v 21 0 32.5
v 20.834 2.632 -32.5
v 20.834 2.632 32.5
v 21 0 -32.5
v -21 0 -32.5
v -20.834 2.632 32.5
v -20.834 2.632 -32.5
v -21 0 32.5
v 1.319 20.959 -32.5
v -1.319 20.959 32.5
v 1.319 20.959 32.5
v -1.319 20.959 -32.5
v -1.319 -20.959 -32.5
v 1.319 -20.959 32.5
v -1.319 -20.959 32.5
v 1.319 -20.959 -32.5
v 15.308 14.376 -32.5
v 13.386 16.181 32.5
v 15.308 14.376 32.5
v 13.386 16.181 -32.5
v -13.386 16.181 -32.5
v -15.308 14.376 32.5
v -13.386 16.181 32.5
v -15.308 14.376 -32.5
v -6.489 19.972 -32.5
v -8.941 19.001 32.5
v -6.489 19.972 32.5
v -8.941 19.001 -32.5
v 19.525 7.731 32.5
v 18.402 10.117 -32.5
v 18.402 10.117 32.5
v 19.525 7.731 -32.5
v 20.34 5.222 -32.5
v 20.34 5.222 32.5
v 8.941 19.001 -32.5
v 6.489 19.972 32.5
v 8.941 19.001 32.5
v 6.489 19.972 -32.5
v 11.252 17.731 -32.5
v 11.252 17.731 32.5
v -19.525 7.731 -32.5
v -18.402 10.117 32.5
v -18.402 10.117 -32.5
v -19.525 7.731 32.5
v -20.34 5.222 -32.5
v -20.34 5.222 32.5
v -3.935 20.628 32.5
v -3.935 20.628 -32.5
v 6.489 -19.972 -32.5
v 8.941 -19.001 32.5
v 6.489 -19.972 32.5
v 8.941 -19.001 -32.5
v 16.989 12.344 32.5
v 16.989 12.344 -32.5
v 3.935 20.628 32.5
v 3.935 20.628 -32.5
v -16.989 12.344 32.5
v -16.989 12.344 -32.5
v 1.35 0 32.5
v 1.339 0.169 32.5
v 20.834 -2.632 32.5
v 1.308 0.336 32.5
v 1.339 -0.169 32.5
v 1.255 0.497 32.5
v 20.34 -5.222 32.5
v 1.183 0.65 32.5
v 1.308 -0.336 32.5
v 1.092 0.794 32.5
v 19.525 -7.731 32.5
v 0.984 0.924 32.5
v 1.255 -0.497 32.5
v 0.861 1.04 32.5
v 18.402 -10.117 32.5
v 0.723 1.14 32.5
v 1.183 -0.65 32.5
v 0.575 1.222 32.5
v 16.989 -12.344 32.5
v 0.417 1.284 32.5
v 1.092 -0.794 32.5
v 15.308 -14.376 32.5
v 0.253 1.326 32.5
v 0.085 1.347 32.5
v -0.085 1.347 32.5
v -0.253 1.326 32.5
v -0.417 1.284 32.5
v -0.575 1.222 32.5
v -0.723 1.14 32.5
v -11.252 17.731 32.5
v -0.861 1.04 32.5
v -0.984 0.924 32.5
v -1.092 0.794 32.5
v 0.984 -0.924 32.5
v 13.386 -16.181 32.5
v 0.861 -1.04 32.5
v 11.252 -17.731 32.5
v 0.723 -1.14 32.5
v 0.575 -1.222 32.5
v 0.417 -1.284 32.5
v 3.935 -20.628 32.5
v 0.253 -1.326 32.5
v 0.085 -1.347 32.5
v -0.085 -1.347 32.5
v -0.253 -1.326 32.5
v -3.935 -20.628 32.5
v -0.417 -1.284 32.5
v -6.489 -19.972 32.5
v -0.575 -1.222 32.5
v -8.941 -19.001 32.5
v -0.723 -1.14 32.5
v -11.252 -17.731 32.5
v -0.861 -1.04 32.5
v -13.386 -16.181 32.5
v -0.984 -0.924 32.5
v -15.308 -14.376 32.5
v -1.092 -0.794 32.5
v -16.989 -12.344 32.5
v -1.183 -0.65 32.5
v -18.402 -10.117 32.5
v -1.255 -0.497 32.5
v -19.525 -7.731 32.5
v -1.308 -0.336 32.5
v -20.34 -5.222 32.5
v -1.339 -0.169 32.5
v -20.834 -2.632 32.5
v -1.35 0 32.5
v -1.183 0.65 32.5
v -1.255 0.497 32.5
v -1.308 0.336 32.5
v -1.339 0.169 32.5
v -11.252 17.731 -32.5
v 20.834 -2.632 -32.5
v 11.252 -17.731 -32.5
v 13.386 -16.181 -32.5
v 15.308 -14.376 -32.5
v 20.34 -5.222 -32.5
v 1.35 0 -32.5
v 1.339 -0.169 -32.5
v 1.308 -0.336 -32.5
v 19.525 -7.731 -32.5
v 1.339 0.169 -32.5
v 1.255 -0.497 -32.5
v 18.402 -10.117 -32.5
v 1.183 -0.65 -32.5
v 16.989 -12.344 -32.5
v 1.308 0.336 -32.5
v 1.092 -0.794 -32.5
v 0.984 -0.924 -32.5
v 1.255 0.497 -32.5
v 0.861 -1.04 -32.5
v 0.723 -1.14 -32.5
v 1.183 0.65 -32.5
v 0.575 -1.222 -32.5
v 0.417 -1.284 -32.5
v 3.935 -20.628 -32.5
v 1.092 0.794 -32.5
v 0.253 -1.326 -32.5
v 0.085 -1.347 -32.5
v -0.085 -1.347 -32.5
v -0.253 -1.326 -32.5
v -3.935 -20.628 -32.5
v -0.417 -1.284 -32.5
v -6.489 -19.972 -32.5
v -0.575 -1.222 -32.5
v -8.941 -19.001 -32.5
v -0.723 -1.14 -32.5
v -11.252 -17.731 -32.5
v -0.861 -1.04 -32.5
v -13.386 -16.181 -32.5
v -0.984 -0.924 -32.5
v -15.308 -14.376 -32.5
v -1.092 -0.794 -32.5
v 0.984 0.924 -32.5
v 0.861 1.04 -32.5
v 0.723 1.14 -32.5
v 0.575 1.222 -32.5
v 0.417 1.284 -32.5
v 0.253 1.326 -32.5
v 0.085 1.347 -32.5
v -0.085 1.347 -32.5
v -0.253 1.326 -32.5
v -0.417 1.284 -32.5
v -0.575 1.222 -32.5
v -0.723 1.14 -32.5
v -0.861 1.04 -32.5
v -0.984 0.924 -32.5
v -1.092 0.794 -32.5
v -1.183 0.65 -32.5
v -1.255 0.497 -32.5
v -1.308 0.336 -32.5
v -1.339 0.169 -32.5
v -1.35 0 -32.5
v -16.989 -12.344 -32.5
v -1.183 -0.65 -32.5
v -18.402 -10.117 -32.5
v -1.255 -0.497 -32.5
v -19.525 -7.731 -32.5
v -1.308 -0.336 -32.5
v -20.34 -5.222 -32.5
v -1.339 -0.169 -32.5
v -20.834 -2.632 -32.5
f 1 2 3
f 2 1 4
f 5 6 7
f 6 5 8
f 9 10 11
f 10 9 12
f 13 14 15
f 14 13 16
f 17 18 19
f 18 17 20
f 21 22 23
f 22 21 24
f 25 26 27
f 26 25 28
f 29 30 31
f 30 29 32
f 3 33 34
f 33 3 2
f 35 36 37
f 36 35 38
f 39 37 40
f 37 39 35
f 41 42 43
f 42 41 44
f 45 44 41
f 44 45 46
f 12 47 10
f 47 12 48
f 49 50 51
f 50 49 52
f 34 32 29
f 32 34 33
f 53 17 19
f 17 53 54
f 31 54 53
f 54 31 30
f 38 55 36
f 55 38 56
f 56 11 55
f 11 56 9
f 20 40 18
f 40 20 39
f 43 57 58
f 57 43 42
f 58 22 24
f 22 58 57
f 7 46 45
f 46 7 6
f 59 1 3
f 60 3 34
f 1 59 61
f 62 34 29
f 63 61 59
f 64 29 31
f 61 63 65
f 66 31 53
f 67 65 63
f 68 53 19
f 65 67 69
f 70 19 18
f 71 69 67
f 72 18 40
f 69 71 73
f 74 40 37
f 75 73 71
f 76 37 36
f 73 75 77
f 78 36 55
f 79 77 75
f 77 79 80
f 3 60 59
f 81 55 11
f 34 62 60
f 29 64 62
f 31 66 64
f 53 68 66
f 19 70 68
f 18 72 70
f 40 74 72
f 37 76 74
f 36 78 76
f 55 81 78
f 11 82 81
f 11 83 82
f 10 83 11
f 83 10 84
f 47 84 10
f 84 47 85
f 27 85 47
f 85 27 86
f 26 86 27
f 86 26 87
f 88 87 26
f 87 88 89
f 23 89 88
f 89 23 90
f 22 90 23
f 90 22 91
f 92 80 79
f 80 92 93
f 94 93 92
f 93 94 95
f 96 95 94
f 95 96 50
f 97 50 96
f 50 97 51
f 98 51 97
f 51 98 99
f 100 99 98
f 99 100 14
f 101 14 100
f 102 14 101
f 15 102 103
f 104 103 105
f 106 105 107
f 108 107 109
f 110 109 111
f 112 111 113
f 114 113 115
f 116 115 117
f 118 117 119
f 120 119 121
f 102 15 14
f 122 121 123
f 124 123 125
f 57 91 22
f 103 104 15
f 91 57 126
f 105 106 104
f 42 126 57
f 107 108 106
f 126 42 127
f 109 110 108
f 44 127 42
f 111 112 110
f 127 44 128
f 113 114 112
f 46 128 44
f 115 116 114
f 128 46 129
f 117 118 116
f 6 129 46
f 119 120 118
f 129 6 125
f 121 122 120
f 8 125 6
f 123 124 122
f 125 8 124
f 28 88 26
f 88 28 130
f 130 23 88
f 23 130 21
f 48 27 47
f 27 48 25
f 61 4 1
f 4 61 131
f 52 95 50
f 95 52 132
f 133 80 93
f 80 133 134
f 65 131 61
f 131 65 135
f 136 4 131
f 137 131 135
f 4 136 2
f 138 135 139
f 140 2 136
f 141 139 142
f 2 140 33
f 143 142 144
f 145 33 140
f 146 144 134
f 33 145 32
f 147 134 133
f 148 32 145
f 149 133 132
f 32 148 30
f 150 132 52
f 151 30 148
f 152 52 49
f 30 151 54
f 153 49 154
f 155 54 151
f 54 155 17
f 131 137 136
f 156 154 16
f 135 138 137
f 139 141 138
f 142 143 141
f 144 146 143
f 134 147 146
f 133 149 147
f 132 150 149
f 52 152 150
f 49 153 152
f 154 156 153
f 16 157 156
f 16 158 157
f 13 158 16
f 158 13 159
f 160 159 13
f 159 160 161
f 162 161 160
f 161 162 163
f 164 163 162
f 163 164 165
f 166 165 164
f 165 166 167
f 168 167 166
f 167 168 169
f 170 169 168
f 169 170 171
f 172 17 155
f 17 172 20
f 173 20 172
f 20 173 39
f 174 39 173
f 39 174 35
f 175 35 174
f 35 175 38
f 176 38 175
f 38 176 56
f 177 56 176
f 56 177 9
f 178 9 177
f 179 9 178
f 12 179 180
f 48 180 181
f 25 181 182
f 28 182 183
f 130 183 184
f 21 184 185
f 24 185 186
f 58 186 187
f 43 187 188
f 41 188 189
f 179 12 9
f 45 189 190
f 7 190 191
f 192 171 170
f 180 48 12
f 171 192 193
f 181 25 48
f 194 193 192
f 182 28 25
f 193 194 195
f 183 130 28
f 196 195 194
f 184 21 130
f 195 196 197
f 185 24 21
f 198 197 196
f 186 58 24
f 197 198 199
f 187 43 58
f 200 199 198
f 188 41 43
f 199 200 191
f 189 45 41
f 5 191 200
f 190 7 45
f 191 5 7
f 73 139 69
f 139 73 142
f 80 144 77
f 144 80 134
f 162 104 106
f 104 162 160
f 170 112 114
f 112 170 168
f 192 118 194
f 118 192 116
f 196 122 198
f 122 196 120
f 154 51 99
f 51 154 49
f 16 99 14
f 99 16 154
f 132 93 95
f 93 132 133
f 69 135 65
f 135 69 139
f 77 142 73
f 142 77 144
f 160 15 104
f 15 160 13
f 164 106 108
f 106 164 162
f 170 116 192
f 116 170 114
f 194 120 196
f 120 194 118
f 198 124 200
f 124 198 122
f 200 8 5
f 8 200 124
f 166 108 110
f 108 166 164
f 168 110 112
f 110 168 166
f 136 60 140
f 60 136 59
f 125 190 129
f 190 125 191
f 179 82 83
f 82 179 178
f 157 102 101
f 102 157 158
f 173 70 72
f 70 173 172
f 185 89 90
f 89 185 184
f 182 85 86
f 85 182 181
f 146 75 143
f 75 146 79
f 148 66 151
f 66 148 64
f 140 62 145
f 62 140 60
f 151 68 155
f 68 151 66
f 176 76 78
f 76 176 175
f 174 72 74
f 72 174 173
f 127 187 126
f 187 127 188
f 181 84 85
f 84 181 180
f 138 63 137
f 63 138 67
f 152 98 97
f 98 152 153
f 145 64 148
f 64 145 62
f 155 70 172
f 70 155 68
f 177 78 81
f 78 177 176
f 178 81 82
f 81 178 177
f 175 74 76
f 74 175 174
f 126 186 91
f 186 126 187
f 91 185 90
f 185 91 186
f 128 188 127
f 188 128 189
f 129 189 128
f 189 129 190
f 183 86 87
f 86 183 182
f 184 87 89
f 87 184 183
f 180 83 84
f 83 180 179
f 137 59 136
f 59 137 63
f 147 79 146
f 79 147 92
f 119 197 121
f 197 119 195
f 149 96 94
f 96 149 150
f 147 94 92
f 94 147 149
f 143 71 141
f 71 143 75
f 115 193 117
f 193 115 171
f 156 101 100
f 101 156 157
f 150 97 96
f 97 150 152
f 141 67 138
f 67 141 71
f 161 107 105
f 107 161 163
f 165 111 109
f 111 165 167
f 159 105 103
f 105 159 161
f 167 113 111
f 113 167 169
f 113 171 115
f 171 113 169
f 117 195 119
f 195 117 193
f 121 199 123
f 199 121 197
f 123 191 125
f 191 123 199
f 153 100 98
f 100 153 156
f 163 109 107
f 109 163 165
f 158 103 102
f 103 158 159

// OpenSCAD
$fn = 50;


difference() {
	union() {
		translate(v = [0, 0, -32.5000000000]) {
			cylinder(h = 65, r = 21.0000000000);
		}
	}
	union() {
		translate(v = [0, 0, -100.0000000000]) {
			cylinder(h = 200, r = 1.3500000000);
		}
	}
}
